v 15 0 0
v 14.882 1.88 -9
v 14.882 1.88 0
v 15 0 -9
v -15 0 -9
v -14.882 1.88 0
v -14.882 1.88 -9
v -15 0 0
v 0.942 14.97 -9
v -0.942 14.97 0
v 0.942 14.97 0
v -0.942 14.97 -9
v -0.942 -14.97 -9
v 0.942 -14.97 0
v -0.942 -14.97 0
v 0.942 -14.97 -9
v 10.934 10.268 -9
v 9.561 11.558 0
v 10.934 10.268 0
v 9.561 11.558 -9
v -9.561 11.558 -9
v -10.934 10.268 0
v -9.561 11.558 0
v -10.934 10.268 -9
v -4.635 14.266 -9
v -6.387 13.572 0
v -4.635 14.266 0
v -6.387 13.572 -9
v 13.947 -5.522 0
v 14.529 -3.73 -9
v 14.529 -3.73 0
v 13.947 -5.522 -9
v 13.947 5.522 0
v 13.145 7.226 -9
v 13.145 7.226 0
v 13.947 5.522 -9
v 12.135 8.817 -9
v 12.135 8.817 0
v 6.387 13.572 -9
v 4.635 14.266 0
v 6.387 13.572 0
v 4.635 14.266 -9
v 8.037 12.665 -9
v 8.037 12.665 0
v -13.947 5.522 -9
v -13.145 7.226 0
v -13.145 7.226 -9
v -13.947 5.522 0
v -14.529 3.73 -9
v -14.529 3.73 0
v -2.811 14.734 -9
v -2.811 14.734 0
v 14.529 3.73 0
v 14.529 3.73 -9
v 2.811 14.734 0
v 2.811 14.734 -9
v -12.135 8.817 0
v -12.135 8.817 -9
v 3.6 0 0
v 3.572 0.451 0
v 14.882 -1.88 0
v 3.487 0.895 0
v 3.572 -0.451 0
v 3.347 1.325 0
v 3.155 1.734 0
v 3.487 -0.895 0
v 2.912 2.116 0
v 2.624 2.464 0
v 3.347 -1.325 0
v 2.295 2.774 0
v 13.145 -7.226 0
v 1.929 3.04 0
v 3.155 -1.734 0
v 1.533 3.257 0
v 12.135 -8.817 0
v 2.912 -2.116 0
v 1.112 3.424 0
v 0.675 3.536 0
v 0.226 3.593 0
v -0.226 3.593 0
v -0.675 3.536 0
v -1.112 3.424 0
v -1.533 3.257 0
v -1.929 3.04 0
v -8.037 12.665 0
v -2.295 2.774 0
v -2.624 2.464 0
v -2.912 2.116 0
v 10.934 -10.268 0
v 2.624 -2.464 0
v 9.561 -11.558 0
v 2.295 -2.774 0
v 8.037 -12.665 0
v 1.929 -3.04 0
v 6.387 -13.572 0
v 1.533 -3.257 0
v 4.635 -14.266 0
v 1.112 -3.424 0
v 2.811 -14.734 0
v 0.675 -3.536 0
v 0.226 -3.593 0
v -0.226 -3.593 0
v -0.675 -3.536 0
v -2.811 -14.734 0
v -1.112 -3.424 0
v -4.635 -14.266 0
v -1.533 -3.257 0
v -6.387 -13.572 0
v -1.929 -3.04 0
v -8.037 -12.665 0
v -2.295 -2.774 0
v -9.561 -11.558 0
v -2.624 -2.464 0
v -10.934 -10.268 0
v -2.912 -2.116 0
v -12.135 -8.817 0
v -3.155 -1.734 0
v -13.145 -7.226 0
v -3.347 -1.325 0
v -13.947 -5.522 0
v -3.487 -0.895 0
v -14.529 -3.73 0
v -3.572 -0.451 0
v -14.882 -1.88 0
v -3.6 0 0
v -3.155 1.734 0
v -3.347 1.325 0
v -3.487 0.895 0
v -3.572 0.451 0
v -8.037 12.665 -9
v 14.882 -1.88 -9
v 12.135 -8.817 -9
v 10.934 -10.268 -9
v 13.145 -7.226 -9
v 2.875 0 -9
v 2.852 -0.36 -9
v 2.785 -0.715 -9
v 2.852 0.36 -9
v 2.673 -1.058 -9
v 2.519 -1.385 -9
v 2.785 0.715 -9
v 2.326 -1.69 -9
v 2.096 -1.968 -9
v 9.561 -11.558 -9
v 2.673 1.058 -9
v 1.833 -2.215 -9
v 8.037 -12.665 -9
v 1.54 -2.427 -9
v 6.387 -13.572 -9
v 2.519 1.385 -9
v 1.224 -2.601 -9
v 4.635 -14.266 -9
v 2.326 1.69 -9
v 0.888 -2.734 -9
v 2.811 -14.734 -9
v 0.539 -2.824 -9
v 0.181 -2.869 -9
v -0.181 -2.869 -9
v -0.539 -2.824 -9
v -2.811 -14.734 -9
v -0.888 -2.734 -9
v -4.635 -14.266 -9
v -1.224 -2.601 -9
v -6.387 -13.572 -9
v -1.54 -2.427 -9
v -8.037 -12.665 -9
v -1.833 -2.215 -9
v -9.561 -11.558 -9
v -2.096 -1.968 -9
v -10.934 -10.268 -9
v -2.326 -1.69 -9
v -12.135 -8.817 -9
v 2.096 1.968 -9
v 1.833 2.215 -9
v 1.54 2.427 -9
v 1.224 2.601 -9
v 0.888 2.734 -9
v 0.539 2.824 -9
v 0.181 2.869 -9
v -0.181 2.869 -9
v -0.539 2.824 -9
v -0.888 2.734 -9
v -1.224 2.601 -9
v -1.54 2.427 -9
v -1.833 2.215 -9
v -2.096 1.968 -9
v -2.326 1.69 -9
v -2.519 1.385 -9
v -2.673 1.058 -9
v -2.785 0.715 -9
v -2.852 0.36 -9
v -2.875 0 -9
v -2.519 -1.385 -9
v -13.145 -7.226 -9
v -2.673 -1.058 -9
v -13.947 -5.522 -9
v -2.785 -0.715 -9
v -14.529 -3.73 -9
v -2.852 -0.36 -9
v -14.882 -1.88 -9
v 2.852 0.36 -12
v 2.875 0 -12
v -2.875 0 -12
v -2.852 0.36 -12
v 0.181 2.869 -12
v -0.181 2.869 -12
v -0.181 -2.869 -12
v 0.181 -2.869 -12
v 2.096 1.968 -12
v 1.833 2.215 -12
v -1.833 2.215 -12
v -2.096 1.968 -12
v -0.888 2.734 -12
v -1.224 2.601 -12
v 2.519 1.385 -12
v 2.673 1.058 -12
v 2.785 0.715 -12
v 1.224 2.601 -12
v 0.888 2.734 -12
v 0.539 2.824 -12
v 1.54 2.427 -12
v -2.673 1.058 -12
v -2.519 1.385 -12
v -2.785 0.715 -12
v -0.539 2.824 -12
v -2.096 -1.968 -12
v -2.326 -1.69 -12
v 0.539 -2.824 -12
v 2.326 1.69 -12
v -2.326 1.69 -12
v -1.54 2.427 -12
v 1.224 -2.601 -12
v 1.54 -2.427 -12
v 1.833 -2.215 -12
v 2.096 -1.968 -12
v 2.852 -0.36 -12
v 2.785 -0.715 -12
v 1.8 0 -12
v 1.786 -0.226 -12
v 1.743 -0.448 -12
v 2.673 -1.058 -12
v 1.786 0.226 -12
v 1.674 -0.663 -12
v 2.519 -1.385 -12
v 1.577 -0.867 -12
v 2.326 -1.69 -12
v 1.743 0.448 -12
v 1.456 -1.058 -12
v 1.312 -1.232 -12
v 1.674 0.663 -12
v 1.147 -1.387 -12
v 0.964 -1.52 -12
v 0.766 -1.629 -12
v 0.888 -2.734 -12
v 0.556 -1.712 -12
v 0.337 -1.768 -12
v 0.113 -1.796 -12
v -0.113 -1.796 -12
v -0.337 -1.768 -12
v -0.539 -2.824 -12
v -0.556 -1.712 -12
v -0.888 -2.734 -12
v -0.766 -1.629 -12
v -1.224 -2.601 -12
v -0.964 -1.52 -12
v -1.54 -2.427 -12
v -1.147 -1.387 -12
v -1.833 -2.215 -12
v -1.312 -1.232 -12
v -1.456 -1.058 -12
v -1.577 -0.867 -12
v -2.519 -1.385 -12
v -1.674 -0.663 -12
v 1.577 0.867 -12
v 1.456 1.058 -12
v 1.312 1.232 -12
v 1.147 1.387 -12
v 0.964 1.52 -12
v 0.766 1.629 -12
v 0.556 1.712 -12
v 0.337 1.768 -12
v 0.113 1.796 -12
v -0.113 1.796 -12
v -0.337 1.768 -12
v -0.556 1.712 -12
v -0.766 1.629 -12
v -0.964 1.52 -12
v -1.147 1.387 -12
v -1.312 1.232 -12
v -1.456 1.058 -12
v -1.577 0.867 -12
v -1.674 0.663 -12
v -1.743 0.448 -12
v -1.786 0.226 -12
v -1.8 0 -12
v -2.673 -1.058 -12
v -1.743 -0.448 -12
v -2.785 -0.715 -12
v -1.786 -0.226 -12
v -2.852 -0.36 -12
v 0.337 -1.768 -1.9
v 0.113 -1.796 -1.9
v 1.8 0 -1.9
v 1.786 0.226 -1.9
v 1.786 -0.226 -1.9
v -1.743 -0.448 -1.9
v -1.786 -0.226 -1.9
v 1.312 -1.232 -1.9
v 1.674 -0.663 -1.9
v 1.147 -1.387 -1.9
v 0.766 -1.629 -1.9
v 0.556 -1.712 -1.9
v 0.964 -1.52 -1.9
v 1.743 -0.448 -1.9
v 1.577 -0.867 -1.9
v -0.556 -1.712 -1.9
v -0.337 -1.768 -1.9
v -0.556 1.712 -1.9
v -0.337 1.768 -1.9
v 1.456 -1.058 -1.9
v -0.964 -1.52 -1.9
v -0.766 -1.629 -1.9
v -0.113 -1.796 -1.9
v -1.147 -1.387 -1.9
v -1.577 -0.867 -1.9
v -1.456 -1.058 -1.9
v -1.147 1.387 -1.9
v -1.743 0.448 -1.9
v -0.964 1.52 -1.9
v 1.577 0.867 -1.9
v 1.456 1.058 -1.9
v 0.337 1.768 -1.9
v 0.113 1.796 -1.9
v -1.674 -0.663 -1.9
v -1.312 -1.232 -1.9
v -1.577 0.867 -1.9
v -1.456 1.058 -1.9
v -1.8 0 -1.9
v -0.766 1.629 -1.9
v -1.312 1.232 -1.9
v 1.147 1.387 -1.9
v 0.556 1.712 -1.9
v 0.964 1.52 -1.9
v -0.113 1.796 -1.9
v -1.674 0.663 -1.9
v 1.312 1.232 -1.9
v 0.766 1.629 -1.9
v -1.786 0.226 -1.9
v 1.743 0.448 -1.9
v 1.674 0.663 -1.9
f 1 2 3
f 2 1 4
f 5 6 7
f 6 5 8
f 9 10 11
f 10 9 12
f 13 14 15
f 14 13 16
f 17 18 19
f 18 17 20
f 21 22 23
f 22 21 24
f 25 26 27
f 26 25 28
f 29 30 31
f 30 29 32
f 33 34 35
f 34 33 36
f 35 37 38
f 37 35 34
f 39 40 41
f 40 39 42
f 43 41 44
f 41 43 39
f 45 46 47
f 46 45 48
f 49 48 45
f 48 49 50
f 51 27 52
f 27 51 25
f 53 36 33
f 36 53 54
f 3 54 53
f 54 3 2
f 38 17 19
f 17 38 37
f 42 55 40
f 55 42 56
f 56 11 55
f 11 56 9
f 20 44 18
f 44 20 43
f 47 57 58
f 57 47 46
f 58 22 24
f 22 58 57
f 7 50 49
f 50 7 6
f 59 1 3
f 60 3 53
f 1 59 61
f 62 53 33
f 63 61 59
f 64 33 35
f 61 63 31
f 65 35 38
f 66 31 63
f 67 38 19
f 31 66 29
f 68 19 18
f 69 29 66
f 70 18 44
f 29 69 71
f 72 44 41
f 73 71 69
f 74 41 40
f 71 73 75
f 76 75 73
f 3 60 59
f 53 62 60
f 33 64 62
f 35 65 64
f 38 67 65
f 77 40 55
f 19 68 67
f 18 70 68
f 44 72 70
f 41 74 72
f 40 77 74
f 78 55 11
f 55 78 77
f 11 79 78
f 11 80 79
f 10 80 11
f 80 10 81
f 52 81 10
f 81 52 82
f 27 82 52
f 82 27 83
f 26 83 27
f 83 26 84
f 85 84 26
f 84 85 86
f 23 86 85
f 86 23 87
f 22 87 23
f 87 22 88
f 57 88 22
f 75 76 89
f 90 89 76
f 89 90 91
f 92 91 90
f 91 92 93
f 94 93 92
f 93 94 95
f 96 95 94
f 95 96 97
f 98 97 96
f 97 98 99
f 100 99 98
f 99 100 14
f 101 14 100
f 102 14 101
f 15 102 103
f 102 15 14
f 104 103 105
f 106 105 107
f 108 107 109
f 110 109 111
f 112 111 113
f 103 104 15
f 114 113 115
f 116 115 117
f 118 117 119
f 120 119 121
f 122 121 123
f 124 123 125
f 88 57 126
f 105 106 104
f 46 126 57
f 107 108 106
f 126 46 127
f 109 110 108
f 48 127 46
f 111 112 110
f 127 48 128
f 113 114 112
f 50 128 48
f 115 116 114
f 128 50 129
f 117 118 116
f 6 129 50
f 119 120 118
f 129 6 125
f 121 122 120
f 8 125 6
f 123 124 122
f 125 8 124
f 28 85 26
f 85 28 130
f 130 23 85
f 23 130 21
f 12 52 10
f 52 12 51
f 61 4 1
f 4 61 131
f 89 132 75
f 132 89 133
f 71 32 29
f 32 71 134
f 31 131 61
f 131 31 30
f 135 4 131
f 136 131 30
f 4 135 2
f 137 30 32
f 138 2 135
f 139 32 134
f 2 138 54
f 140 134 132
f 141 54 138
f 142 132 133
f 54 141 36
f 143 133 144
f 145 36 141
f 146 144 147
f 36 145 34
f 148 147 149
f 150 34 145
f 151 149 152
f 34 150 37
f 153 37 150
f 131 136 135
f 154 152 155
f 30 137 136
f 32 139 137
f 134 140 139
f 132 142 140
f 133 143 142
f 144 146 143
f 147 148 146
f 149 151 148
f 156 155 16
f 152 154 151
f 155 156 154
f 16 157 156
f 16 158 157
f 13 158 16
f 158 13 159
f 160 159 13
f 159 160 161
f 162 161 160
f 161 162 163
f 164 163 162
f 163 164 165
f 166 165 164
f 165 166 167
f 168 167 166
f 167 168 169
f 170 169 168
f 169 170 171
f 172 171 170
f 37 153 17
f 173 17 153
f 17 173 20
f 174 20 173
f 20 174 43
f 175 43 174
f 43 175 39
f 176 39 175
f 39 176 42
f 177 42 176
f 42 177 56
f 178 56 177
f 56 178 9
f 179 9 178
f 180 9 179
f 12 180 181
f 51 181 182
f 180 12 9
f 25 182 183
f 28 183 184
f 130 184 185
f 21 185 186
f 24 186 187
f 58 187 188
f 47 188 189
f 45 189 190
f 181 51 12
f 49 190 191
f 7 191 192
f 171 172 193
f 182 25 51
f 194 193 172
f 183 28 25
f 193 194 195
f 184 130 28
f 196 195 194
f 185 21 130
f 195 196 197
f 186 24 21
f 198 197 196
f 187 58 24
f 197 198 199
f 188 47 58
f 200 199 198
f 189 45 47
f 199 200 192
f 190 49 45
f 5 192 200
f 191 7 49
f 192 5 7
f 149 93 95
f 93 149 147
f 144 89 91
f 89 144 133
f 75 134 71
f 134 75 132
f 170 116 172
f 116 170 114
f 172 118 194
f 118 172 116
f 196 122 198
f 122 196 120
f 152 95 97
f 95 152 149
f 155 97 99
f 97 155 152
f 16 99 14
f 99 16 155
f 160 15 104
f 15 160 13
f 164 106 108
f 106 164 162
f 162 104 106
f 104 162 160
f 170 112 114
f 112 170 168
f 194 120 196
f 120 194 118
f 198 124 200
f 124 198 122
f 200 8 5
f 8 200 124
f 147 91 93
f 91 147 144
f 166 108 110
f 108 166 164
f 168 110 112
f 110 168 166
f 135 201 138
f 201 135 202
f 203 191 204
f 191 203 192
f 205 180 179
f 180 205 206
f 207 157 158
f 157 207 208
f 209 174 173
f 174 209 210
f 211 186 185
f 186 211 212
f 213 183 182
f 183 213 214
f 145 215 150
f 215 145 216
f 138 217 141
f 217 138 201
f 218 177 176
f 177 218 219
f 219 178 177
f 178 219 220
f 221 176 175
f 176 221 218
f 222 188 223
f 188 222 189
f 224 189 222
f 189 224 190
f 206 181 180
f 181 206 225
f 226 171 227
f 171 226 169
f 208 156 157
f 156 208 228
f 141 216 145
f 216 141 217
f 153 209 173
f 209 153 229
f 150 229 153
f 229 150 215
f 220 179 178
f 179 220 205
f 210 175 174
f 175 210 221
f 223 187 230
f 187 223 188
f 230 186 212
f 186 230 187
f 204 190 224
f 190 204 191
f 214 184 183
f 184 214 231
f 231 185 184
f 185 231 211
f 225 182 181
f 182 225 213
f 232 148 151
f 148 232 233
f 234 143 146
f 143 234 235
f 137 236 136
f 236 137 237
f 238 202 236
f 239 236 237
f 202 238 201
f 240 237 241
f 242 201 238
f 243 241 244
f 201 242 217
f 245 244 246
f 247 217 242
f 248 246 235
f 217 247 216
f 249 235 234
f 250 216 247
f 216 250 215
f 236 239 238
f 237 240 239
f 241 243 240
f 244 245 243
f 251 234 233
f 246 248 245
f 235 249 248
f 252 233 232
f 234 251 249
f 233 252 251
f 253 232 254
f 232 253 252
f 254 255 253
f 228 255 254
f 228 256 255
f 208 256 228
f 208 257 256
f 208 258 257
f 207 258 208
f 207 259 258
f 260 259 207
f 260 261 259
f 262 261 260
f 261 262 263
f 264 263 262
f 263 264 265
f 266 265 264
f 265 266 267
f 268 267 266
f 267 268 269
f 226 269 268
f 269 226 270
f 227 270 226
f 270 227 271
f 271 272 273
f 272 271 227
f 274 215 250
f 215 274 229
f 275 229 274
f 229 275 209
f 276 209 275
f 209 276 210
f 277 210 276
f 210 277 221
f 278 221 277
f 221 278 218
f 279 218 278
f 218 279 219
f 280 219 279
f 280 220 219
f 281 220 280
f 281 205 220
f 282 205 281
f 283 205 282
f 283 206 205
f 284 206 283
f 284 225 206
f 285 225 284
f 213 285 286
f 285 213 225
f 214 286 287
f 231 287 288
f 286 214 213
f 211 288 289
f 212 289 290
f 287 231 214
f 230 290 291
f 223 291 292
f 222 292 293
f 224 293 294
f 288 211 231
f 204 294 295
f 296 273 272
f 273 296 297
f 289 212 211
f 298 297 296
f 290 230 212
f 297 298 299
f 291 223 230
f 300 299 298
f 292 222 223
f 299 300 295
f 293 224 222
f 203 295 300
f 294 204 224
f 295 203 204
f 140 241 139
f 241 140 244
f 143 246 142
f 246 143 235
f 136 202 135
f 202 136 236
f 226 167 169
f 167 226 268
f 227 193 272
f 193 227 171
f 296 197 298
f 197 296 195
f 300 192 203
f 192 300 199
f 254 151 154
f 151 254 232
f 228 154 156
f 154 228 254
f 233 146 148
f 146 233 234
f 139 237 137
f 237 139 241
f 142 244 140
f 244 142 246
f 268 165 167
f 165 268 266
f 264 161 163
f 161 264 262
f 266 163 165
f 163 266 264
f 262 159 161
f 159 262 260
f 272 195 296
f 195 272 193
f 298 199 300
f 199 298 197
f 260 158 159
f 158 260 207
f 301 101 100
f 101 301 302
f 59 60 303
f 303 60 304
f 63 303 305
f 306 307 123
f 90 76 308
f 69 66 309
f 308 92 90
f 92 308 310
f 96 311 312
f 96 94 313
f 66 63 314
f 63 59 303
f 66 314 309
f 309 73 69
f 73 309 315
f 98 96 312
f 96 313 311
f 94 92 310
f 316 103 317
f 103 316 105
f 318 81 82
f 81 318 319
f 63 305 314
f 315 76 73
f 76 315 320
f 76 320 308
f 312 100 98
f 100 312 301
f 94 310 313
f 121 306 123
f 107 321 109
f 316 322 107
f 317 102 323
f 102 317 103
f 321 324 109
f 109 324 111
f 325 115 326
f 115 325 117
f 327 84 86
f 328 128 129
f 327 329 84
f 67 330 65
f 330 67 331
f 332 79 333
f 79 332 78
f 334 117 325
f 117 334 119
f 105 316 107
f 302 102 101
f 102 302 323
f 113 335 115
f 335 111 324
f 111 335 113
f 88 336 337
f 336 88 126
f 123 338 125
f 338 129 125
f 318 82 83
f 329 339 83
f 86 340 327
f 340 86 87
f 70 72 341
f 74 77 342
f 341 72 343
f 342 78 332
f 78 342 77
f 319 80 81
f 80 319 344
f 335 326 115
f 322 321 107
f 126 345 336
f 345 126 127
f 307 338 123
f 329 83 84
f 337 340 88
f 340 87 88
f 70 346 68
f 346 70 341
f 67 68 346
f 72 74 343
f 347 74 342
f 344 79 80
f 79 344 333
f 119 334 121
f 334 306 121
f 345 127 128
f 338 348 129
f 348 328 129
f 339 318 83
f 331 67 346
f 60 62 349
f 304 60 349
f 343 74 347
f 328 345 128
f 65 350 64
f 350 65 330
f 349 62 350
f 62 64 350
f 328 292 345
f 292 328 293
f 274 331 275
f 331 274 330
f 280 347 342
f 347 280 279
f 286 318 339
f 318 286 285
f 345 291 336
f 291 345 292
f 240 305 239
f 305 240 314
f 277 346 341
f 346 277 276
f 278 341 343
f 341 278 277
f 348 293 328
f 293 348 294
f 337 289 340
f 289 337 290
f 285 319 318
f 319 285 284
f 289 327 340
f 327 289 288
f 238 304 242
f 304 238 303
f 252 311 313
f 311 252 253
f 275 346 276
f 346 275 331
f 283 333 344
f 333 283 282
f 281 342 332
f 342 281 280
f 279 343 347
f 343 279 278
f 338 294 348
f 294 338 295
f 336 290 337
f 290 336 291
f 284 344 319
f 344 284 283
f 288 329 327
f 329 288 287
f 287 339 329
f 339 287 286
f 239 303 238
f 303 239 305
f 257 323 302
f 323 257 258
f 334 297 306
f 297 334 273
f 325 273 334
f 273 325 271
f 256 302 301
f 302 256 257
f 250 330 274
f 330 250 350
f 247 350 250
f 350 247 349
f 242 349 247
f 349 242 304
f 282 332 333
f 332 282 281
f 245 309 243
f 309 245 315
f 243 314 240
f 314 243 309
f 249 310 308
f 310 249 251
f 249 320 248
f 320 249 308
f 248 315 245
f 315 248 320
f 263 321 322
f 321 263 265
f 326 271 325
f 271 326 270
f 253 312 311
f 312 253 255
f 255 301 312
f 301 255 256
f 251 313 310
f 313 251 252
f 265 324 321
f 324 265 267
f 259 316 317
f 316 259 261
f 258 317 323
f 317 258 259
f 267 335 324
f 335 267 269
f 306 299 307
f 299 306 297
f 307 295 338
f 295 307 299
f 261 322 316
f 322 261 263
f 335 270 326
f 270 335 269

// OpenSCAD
$fn = 50;


difference() {
	union() {
		translate(v = [0, 0, -9.0000000000]) {
			cylinder(h = 9, r = 15.0000000000);
		}
		translate(v = [0, 0, -12.0000000000]) {
			cylinder(h = 12, r = 2.8750000000);
		}
	}
	union() {
		translate(v = [0, 0, 0]) {
			rotate(a = [0, 0, 0]) {
				difference() {
					union() {
						translate(v = [0, 0, -12.0000000000]) {
							cylinder(h = 12, r = 1.5000000000);
						}
						translate(v = [0, 0, -1.9000000000]) {
							cylinder(h = 1.9000000000, r1 = 1.8000000000, r2 = 3.6000000000);
						}
						translate(v = [0, 0, -12.0000000000]) {
							cylinder(h = 12, r = 1.8000000000);
						}
						translate(v = [0, 0, -12.0000000000]) {
							cylinder(h = 12, r = 1.5000000000);
						}
					}
					union();
				}
			}
		}
	}
}
